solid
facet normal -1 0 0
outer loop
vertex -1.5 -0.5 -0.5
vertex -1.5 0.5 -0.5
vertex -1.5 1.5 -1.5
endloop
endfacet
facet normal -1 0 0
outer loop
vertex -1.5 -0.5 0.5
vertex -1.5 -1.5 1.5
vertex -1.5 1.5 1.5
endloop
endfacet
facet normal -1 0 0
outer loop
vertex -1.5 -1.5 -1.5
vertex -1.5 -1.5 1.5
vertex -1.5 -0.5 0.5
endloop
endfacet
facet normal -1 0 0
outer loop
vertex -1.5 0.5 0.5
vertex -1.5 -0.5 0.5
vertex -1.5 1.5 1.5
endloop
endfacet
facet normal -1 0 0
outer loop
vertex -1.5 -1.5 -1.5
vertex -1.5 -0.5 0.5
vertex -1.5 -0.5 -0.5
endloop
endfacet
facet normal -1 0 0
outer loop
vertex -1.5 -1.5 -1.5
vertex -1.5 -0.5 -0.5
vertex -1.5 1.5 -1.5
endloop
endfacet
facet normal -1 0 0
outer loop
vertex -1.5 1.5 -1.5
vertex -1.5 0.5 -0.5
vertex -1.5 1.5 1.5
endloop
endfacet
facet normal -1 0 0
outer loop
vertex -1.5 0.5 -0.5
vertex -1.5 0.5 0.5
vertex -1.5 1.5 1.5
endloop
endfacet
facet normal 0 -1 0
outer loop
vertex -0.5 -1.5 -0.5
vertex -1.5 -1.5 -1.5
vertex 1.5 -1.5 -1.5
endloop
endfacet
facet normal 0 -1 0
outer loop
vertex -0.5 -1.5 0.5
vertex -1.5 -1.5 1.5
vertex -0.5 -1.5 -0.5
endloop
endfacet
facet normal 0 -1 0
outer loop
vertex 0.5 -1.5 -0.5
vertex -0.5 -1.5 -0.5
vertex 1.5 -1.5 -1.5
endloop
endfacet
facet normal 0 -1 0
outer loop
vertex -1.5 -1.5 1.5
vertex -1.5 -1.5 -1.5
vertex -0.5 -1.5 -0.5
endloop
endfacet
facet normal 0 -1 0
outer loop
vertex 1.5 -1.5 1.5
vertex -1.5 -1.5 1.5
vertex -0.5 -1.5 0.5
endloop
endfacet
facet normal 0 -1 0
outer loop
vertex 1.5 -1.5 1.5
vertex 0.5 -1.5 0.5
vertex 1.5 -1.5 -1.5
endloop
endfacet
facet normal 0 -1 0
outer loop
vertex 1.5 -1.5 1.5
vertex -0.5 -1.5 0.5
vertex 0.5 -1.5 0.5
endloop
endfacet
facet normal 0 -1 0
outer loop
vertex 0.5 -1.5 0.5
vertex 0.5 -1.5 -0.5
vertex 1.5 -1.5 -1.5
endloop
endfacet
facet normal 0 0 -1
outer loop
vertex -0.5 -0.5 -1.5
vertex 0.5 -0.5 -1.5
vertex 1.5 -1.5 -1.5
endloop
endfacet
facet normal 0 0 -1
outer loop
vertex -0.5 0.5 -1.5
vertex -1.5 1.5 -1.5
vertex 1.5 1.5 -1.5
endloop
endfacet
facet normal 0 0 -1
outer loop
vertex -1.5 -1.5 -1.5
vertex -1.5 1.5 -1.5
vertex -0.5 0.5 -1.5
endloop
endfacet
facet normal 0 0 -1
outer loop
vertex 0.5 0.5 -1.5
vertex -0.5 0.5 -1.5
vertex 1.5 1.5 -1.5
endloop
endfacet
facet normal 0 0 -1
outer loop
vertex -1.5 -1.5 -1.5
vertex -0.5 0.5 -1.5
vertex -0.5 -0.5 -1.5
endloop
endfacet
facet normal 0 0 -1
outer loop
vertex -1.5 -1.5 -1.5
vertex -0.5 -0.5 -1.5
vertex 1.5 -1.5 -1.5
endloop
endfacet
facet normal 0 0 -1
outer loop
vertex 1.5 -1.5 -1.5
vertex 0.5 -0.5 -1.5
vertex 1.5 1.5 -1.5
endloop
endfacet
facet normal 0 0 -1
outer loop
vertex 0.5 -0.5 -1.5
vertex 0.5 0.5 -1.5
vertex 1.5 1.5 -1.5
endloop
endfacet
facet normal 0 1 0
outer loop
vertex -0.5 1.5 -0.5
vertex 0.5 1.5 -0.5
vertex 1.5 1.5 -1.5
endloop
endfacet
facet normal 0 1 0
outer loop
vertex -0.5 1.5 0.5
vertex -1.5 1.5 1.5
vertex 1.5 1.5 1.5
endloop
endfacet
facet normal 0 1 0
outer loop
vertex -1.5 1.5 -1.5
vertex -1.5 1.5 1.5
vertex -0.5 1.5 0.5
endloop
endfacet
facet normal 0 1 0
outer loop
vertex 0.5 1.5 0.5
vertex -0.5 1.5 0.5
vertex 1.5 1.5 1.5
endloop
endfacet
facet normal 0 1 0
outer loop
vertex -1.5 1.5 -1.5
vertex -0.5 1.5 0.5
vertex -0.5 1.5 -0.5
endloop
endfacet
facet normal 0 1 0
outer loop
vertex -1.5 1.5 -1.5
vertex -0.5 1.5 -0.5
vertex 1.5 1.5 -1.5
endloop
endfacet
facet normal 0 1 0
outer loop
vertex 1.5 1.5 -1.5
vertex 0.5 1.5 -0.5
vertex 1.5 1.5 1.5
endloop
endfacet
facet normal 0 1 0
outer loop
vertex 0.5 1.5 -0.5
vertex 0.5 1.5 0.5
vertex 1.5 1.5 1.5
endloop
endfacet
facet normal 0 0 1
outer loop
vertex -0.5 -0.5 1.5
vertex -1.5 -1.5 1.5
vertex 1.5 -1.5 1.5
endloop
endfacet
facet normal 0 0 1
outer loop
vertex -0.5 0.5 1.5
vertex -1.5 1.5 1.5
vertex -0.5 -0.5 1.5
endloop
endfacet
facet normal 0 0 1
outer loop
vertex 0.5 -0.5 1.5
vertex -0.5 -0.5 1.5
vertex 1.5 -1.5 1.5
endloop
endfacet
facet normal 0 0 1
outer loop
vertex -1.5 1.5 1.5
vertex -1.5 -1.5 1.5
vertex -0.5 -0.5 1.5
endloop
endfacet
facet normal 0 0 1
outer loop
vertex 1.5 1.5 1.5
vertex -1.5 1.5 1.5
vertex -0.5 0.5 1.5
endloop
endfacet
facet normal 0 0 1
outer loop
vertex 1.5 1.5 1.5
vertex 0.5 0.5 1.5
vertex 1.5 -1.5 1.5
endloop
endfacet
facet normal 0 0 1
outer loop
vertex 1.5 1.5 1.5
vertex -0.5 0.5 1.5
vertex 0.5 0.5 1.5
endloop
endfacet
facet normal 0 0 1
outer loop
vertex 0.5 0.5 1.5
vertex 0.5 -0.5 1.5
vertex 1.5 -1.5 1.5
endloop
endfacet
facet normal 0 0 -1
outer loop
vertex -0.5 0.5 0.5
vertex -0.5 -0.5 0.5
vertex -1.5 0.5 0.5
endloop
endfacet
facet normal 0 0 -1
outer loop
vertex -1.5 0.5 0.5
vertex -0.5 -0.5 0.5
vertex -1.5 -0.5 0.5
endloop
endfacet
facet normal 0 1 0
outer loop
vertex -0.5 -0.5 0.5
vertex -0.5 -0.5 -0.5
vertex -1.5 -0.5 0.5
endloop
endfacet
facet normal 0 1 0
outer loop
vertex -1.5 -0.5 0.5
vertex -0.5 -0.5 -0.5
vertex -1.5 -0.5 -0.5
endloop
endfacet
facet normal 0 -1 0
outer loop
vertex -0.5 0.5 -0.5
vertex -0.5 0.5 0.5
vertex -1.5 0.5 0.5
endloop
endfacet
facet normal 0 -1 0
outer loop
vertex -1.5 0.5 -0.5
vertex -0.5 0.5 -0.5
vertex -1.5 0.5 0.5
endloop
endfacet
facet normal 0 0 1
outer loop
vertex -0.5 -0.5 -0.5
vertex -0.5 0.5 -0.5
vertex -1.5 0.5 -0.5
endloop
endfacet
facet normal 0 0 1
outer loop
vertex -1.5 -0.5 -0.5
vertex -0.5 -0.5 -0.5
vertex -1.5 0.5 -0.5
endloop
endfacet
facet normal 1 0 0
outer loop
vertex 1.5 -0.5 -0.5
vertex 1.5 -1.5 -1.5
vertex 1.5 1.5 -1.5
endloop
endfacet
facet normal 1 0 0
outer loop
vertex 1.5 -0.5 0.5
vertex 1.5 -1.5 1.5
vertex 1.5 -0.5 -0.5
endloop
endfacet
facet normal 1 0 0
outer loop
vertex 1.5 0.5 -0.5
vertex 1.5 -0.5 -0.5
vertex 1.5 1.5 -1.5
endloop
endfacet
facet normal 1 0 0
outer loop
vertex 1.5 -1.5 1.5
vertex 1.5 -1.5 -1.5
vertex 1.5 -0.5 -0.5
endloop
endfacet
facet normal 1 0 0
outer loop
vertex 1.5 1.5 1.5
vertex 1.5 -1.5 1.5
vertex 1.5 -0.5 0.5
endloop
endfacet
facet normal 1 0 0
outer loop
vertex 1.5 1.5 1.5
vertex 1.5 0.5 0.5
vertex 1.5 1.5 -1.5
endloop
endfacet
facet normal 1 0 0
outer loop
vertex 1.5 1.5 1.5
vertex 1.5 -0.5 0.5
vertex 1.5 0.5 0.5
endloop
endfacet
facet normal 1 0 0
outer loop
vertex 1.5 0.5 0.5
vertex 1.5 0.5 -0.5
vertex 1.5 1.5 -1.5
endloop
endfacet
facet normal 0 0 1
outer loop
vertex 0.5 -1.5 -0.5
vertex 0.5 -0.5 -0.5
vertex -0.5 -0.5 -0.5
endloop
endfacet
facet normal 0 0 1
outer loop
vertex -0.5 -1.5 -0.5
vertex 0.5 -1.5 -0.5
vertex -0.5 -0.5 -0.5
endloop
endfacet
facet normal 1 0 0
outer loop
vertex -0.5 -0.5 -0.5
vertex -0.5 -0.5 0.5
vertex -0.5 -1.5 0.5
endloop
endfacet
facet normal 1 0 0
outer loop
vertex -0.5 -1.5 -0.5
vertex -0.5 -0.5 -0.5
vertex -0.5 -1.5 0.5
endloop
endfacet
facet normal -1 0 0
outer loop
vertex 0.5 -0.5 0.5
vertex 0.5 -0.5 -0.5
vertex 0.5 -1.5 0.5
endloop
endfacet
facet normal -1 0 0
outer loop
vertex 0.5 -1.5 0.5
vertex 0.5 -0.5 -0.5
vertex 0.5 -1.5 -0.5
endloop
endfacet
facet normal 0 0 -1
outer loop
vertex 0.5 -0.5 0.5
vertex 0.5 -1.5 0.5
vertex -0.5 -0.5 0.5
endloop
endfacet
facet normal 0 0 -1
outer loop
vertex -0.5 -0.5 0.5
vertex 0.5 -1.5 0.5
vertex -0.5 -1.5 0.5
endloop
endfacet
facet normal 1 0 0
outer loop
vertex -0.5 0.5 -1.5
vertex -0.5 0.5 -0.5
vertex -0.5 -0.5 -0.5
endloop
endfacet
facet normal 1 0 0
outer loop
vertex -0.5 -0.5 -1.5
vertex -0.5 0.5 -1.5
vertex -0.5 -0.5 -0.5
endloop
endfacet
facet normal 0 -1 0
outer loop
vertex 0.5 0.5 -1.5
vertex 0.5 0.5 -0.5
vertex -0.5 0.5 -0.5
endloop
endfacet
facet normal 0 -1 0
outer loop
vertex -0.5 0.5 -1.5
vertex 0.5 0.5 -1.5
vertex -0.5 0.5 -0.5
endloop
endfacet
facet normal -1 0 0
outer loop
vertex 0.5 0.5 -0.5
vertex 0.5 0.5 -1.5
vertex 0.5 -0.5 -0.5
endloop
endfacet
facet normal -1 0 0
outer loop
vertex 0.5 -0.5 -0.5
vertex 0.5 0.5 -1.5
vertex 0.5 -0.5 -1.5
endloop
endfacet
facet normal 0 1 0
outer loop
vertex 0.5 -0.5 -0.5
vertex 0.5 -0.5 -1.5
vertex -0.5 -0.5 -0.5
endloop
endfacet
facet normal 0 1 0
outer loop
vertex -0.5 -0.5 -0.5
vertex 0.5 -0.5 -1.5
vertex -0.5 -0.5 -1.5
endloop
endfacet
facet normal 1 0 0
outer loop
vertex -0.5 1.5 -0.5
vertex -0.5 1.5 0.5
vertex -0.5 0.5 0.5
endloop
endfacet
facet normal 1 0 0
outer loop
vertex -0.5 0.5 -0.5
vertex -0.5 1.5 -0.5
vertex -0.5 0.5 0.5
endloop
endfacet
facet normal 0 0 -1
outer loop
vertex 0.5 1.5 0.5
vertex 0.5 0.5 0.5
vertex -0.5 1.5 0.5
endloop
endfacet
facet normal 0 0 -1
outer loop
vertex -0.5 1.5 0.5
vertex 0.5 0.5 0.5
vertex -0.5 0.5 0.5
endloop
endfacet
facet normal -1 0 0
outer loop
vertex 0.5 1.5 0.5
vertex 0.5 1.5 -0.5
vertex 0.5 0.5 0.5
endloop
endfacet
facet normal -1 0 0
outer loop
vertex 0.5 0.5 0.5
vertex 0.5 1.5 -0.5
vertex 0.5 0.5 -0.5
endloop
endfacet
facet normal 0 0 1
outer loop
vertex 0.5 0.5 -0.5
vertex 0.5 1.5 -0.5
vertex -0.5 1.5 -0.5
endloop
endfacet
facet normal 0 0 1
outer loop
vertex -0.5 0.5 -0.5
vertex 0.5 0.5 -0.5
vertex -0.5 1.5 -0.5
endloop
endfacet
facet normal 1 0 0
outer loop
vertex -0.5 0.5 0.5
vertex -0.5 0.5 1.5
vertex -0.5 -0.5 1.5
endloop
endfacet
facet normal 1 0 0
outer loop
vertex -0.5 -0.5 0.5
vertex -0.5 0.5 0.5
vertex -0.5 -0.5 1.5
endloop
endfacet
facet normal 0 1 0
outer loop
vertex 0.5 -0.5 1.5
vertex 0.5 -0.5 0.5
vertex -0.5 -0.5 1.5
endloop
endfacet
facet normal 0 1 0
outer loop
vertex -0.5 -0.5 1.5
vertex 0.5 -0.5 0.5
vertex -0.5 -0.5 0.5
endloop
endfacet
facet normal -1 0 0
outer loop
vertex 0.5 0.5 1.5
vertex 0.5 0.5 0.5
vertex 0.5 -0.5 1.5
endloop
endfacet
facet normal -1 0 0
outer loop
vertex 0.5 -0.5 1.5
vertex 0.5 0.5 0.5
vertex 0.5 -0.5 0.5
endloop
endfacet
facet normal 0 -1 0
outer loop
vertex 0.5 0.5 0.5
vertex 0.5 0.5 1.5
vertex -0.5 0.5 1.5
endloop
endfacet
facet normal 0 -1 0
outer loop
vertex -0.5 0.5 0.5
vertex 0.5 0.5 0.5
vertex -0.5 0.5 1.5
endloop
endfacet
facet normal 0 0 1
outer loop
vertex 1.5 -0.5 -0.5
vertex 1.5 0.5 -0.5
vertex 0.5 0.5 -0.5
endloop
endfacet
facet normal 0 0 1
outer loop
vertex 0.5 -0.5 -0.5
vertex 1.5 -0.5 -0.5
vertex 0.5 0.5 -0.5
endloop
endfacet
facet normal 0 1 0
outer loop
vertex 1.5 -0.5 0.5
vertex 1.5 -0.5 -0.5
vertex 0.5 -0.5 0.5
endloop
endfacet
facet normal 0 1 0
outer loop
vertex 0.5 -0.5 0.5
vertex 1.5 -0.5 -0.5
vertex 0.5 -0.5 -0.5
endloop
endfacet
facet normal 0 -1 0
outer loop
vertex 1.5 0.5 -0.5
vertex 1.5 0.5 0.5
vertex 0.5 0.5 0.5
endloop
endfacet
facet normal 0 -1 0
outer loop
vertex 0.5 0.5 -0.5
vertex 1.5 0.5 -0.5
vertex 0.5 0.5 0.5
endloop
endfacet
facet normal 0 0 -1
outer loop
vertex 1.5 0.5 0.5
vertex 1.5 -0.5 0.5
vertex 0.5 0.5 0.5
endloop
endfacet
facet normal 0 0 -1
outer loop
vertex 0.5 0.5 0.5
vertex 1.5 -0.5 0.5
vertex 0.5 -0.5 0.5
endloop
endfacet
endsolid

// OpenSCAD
difference() {
	cube(size = 3, center = true);
	union() {
		cube(size = [1, 1, 4], center = true);
		cube(size = [1, 4, 1], center = true);
		cube(size = [4, 1, 1], center = true);
	}
}
